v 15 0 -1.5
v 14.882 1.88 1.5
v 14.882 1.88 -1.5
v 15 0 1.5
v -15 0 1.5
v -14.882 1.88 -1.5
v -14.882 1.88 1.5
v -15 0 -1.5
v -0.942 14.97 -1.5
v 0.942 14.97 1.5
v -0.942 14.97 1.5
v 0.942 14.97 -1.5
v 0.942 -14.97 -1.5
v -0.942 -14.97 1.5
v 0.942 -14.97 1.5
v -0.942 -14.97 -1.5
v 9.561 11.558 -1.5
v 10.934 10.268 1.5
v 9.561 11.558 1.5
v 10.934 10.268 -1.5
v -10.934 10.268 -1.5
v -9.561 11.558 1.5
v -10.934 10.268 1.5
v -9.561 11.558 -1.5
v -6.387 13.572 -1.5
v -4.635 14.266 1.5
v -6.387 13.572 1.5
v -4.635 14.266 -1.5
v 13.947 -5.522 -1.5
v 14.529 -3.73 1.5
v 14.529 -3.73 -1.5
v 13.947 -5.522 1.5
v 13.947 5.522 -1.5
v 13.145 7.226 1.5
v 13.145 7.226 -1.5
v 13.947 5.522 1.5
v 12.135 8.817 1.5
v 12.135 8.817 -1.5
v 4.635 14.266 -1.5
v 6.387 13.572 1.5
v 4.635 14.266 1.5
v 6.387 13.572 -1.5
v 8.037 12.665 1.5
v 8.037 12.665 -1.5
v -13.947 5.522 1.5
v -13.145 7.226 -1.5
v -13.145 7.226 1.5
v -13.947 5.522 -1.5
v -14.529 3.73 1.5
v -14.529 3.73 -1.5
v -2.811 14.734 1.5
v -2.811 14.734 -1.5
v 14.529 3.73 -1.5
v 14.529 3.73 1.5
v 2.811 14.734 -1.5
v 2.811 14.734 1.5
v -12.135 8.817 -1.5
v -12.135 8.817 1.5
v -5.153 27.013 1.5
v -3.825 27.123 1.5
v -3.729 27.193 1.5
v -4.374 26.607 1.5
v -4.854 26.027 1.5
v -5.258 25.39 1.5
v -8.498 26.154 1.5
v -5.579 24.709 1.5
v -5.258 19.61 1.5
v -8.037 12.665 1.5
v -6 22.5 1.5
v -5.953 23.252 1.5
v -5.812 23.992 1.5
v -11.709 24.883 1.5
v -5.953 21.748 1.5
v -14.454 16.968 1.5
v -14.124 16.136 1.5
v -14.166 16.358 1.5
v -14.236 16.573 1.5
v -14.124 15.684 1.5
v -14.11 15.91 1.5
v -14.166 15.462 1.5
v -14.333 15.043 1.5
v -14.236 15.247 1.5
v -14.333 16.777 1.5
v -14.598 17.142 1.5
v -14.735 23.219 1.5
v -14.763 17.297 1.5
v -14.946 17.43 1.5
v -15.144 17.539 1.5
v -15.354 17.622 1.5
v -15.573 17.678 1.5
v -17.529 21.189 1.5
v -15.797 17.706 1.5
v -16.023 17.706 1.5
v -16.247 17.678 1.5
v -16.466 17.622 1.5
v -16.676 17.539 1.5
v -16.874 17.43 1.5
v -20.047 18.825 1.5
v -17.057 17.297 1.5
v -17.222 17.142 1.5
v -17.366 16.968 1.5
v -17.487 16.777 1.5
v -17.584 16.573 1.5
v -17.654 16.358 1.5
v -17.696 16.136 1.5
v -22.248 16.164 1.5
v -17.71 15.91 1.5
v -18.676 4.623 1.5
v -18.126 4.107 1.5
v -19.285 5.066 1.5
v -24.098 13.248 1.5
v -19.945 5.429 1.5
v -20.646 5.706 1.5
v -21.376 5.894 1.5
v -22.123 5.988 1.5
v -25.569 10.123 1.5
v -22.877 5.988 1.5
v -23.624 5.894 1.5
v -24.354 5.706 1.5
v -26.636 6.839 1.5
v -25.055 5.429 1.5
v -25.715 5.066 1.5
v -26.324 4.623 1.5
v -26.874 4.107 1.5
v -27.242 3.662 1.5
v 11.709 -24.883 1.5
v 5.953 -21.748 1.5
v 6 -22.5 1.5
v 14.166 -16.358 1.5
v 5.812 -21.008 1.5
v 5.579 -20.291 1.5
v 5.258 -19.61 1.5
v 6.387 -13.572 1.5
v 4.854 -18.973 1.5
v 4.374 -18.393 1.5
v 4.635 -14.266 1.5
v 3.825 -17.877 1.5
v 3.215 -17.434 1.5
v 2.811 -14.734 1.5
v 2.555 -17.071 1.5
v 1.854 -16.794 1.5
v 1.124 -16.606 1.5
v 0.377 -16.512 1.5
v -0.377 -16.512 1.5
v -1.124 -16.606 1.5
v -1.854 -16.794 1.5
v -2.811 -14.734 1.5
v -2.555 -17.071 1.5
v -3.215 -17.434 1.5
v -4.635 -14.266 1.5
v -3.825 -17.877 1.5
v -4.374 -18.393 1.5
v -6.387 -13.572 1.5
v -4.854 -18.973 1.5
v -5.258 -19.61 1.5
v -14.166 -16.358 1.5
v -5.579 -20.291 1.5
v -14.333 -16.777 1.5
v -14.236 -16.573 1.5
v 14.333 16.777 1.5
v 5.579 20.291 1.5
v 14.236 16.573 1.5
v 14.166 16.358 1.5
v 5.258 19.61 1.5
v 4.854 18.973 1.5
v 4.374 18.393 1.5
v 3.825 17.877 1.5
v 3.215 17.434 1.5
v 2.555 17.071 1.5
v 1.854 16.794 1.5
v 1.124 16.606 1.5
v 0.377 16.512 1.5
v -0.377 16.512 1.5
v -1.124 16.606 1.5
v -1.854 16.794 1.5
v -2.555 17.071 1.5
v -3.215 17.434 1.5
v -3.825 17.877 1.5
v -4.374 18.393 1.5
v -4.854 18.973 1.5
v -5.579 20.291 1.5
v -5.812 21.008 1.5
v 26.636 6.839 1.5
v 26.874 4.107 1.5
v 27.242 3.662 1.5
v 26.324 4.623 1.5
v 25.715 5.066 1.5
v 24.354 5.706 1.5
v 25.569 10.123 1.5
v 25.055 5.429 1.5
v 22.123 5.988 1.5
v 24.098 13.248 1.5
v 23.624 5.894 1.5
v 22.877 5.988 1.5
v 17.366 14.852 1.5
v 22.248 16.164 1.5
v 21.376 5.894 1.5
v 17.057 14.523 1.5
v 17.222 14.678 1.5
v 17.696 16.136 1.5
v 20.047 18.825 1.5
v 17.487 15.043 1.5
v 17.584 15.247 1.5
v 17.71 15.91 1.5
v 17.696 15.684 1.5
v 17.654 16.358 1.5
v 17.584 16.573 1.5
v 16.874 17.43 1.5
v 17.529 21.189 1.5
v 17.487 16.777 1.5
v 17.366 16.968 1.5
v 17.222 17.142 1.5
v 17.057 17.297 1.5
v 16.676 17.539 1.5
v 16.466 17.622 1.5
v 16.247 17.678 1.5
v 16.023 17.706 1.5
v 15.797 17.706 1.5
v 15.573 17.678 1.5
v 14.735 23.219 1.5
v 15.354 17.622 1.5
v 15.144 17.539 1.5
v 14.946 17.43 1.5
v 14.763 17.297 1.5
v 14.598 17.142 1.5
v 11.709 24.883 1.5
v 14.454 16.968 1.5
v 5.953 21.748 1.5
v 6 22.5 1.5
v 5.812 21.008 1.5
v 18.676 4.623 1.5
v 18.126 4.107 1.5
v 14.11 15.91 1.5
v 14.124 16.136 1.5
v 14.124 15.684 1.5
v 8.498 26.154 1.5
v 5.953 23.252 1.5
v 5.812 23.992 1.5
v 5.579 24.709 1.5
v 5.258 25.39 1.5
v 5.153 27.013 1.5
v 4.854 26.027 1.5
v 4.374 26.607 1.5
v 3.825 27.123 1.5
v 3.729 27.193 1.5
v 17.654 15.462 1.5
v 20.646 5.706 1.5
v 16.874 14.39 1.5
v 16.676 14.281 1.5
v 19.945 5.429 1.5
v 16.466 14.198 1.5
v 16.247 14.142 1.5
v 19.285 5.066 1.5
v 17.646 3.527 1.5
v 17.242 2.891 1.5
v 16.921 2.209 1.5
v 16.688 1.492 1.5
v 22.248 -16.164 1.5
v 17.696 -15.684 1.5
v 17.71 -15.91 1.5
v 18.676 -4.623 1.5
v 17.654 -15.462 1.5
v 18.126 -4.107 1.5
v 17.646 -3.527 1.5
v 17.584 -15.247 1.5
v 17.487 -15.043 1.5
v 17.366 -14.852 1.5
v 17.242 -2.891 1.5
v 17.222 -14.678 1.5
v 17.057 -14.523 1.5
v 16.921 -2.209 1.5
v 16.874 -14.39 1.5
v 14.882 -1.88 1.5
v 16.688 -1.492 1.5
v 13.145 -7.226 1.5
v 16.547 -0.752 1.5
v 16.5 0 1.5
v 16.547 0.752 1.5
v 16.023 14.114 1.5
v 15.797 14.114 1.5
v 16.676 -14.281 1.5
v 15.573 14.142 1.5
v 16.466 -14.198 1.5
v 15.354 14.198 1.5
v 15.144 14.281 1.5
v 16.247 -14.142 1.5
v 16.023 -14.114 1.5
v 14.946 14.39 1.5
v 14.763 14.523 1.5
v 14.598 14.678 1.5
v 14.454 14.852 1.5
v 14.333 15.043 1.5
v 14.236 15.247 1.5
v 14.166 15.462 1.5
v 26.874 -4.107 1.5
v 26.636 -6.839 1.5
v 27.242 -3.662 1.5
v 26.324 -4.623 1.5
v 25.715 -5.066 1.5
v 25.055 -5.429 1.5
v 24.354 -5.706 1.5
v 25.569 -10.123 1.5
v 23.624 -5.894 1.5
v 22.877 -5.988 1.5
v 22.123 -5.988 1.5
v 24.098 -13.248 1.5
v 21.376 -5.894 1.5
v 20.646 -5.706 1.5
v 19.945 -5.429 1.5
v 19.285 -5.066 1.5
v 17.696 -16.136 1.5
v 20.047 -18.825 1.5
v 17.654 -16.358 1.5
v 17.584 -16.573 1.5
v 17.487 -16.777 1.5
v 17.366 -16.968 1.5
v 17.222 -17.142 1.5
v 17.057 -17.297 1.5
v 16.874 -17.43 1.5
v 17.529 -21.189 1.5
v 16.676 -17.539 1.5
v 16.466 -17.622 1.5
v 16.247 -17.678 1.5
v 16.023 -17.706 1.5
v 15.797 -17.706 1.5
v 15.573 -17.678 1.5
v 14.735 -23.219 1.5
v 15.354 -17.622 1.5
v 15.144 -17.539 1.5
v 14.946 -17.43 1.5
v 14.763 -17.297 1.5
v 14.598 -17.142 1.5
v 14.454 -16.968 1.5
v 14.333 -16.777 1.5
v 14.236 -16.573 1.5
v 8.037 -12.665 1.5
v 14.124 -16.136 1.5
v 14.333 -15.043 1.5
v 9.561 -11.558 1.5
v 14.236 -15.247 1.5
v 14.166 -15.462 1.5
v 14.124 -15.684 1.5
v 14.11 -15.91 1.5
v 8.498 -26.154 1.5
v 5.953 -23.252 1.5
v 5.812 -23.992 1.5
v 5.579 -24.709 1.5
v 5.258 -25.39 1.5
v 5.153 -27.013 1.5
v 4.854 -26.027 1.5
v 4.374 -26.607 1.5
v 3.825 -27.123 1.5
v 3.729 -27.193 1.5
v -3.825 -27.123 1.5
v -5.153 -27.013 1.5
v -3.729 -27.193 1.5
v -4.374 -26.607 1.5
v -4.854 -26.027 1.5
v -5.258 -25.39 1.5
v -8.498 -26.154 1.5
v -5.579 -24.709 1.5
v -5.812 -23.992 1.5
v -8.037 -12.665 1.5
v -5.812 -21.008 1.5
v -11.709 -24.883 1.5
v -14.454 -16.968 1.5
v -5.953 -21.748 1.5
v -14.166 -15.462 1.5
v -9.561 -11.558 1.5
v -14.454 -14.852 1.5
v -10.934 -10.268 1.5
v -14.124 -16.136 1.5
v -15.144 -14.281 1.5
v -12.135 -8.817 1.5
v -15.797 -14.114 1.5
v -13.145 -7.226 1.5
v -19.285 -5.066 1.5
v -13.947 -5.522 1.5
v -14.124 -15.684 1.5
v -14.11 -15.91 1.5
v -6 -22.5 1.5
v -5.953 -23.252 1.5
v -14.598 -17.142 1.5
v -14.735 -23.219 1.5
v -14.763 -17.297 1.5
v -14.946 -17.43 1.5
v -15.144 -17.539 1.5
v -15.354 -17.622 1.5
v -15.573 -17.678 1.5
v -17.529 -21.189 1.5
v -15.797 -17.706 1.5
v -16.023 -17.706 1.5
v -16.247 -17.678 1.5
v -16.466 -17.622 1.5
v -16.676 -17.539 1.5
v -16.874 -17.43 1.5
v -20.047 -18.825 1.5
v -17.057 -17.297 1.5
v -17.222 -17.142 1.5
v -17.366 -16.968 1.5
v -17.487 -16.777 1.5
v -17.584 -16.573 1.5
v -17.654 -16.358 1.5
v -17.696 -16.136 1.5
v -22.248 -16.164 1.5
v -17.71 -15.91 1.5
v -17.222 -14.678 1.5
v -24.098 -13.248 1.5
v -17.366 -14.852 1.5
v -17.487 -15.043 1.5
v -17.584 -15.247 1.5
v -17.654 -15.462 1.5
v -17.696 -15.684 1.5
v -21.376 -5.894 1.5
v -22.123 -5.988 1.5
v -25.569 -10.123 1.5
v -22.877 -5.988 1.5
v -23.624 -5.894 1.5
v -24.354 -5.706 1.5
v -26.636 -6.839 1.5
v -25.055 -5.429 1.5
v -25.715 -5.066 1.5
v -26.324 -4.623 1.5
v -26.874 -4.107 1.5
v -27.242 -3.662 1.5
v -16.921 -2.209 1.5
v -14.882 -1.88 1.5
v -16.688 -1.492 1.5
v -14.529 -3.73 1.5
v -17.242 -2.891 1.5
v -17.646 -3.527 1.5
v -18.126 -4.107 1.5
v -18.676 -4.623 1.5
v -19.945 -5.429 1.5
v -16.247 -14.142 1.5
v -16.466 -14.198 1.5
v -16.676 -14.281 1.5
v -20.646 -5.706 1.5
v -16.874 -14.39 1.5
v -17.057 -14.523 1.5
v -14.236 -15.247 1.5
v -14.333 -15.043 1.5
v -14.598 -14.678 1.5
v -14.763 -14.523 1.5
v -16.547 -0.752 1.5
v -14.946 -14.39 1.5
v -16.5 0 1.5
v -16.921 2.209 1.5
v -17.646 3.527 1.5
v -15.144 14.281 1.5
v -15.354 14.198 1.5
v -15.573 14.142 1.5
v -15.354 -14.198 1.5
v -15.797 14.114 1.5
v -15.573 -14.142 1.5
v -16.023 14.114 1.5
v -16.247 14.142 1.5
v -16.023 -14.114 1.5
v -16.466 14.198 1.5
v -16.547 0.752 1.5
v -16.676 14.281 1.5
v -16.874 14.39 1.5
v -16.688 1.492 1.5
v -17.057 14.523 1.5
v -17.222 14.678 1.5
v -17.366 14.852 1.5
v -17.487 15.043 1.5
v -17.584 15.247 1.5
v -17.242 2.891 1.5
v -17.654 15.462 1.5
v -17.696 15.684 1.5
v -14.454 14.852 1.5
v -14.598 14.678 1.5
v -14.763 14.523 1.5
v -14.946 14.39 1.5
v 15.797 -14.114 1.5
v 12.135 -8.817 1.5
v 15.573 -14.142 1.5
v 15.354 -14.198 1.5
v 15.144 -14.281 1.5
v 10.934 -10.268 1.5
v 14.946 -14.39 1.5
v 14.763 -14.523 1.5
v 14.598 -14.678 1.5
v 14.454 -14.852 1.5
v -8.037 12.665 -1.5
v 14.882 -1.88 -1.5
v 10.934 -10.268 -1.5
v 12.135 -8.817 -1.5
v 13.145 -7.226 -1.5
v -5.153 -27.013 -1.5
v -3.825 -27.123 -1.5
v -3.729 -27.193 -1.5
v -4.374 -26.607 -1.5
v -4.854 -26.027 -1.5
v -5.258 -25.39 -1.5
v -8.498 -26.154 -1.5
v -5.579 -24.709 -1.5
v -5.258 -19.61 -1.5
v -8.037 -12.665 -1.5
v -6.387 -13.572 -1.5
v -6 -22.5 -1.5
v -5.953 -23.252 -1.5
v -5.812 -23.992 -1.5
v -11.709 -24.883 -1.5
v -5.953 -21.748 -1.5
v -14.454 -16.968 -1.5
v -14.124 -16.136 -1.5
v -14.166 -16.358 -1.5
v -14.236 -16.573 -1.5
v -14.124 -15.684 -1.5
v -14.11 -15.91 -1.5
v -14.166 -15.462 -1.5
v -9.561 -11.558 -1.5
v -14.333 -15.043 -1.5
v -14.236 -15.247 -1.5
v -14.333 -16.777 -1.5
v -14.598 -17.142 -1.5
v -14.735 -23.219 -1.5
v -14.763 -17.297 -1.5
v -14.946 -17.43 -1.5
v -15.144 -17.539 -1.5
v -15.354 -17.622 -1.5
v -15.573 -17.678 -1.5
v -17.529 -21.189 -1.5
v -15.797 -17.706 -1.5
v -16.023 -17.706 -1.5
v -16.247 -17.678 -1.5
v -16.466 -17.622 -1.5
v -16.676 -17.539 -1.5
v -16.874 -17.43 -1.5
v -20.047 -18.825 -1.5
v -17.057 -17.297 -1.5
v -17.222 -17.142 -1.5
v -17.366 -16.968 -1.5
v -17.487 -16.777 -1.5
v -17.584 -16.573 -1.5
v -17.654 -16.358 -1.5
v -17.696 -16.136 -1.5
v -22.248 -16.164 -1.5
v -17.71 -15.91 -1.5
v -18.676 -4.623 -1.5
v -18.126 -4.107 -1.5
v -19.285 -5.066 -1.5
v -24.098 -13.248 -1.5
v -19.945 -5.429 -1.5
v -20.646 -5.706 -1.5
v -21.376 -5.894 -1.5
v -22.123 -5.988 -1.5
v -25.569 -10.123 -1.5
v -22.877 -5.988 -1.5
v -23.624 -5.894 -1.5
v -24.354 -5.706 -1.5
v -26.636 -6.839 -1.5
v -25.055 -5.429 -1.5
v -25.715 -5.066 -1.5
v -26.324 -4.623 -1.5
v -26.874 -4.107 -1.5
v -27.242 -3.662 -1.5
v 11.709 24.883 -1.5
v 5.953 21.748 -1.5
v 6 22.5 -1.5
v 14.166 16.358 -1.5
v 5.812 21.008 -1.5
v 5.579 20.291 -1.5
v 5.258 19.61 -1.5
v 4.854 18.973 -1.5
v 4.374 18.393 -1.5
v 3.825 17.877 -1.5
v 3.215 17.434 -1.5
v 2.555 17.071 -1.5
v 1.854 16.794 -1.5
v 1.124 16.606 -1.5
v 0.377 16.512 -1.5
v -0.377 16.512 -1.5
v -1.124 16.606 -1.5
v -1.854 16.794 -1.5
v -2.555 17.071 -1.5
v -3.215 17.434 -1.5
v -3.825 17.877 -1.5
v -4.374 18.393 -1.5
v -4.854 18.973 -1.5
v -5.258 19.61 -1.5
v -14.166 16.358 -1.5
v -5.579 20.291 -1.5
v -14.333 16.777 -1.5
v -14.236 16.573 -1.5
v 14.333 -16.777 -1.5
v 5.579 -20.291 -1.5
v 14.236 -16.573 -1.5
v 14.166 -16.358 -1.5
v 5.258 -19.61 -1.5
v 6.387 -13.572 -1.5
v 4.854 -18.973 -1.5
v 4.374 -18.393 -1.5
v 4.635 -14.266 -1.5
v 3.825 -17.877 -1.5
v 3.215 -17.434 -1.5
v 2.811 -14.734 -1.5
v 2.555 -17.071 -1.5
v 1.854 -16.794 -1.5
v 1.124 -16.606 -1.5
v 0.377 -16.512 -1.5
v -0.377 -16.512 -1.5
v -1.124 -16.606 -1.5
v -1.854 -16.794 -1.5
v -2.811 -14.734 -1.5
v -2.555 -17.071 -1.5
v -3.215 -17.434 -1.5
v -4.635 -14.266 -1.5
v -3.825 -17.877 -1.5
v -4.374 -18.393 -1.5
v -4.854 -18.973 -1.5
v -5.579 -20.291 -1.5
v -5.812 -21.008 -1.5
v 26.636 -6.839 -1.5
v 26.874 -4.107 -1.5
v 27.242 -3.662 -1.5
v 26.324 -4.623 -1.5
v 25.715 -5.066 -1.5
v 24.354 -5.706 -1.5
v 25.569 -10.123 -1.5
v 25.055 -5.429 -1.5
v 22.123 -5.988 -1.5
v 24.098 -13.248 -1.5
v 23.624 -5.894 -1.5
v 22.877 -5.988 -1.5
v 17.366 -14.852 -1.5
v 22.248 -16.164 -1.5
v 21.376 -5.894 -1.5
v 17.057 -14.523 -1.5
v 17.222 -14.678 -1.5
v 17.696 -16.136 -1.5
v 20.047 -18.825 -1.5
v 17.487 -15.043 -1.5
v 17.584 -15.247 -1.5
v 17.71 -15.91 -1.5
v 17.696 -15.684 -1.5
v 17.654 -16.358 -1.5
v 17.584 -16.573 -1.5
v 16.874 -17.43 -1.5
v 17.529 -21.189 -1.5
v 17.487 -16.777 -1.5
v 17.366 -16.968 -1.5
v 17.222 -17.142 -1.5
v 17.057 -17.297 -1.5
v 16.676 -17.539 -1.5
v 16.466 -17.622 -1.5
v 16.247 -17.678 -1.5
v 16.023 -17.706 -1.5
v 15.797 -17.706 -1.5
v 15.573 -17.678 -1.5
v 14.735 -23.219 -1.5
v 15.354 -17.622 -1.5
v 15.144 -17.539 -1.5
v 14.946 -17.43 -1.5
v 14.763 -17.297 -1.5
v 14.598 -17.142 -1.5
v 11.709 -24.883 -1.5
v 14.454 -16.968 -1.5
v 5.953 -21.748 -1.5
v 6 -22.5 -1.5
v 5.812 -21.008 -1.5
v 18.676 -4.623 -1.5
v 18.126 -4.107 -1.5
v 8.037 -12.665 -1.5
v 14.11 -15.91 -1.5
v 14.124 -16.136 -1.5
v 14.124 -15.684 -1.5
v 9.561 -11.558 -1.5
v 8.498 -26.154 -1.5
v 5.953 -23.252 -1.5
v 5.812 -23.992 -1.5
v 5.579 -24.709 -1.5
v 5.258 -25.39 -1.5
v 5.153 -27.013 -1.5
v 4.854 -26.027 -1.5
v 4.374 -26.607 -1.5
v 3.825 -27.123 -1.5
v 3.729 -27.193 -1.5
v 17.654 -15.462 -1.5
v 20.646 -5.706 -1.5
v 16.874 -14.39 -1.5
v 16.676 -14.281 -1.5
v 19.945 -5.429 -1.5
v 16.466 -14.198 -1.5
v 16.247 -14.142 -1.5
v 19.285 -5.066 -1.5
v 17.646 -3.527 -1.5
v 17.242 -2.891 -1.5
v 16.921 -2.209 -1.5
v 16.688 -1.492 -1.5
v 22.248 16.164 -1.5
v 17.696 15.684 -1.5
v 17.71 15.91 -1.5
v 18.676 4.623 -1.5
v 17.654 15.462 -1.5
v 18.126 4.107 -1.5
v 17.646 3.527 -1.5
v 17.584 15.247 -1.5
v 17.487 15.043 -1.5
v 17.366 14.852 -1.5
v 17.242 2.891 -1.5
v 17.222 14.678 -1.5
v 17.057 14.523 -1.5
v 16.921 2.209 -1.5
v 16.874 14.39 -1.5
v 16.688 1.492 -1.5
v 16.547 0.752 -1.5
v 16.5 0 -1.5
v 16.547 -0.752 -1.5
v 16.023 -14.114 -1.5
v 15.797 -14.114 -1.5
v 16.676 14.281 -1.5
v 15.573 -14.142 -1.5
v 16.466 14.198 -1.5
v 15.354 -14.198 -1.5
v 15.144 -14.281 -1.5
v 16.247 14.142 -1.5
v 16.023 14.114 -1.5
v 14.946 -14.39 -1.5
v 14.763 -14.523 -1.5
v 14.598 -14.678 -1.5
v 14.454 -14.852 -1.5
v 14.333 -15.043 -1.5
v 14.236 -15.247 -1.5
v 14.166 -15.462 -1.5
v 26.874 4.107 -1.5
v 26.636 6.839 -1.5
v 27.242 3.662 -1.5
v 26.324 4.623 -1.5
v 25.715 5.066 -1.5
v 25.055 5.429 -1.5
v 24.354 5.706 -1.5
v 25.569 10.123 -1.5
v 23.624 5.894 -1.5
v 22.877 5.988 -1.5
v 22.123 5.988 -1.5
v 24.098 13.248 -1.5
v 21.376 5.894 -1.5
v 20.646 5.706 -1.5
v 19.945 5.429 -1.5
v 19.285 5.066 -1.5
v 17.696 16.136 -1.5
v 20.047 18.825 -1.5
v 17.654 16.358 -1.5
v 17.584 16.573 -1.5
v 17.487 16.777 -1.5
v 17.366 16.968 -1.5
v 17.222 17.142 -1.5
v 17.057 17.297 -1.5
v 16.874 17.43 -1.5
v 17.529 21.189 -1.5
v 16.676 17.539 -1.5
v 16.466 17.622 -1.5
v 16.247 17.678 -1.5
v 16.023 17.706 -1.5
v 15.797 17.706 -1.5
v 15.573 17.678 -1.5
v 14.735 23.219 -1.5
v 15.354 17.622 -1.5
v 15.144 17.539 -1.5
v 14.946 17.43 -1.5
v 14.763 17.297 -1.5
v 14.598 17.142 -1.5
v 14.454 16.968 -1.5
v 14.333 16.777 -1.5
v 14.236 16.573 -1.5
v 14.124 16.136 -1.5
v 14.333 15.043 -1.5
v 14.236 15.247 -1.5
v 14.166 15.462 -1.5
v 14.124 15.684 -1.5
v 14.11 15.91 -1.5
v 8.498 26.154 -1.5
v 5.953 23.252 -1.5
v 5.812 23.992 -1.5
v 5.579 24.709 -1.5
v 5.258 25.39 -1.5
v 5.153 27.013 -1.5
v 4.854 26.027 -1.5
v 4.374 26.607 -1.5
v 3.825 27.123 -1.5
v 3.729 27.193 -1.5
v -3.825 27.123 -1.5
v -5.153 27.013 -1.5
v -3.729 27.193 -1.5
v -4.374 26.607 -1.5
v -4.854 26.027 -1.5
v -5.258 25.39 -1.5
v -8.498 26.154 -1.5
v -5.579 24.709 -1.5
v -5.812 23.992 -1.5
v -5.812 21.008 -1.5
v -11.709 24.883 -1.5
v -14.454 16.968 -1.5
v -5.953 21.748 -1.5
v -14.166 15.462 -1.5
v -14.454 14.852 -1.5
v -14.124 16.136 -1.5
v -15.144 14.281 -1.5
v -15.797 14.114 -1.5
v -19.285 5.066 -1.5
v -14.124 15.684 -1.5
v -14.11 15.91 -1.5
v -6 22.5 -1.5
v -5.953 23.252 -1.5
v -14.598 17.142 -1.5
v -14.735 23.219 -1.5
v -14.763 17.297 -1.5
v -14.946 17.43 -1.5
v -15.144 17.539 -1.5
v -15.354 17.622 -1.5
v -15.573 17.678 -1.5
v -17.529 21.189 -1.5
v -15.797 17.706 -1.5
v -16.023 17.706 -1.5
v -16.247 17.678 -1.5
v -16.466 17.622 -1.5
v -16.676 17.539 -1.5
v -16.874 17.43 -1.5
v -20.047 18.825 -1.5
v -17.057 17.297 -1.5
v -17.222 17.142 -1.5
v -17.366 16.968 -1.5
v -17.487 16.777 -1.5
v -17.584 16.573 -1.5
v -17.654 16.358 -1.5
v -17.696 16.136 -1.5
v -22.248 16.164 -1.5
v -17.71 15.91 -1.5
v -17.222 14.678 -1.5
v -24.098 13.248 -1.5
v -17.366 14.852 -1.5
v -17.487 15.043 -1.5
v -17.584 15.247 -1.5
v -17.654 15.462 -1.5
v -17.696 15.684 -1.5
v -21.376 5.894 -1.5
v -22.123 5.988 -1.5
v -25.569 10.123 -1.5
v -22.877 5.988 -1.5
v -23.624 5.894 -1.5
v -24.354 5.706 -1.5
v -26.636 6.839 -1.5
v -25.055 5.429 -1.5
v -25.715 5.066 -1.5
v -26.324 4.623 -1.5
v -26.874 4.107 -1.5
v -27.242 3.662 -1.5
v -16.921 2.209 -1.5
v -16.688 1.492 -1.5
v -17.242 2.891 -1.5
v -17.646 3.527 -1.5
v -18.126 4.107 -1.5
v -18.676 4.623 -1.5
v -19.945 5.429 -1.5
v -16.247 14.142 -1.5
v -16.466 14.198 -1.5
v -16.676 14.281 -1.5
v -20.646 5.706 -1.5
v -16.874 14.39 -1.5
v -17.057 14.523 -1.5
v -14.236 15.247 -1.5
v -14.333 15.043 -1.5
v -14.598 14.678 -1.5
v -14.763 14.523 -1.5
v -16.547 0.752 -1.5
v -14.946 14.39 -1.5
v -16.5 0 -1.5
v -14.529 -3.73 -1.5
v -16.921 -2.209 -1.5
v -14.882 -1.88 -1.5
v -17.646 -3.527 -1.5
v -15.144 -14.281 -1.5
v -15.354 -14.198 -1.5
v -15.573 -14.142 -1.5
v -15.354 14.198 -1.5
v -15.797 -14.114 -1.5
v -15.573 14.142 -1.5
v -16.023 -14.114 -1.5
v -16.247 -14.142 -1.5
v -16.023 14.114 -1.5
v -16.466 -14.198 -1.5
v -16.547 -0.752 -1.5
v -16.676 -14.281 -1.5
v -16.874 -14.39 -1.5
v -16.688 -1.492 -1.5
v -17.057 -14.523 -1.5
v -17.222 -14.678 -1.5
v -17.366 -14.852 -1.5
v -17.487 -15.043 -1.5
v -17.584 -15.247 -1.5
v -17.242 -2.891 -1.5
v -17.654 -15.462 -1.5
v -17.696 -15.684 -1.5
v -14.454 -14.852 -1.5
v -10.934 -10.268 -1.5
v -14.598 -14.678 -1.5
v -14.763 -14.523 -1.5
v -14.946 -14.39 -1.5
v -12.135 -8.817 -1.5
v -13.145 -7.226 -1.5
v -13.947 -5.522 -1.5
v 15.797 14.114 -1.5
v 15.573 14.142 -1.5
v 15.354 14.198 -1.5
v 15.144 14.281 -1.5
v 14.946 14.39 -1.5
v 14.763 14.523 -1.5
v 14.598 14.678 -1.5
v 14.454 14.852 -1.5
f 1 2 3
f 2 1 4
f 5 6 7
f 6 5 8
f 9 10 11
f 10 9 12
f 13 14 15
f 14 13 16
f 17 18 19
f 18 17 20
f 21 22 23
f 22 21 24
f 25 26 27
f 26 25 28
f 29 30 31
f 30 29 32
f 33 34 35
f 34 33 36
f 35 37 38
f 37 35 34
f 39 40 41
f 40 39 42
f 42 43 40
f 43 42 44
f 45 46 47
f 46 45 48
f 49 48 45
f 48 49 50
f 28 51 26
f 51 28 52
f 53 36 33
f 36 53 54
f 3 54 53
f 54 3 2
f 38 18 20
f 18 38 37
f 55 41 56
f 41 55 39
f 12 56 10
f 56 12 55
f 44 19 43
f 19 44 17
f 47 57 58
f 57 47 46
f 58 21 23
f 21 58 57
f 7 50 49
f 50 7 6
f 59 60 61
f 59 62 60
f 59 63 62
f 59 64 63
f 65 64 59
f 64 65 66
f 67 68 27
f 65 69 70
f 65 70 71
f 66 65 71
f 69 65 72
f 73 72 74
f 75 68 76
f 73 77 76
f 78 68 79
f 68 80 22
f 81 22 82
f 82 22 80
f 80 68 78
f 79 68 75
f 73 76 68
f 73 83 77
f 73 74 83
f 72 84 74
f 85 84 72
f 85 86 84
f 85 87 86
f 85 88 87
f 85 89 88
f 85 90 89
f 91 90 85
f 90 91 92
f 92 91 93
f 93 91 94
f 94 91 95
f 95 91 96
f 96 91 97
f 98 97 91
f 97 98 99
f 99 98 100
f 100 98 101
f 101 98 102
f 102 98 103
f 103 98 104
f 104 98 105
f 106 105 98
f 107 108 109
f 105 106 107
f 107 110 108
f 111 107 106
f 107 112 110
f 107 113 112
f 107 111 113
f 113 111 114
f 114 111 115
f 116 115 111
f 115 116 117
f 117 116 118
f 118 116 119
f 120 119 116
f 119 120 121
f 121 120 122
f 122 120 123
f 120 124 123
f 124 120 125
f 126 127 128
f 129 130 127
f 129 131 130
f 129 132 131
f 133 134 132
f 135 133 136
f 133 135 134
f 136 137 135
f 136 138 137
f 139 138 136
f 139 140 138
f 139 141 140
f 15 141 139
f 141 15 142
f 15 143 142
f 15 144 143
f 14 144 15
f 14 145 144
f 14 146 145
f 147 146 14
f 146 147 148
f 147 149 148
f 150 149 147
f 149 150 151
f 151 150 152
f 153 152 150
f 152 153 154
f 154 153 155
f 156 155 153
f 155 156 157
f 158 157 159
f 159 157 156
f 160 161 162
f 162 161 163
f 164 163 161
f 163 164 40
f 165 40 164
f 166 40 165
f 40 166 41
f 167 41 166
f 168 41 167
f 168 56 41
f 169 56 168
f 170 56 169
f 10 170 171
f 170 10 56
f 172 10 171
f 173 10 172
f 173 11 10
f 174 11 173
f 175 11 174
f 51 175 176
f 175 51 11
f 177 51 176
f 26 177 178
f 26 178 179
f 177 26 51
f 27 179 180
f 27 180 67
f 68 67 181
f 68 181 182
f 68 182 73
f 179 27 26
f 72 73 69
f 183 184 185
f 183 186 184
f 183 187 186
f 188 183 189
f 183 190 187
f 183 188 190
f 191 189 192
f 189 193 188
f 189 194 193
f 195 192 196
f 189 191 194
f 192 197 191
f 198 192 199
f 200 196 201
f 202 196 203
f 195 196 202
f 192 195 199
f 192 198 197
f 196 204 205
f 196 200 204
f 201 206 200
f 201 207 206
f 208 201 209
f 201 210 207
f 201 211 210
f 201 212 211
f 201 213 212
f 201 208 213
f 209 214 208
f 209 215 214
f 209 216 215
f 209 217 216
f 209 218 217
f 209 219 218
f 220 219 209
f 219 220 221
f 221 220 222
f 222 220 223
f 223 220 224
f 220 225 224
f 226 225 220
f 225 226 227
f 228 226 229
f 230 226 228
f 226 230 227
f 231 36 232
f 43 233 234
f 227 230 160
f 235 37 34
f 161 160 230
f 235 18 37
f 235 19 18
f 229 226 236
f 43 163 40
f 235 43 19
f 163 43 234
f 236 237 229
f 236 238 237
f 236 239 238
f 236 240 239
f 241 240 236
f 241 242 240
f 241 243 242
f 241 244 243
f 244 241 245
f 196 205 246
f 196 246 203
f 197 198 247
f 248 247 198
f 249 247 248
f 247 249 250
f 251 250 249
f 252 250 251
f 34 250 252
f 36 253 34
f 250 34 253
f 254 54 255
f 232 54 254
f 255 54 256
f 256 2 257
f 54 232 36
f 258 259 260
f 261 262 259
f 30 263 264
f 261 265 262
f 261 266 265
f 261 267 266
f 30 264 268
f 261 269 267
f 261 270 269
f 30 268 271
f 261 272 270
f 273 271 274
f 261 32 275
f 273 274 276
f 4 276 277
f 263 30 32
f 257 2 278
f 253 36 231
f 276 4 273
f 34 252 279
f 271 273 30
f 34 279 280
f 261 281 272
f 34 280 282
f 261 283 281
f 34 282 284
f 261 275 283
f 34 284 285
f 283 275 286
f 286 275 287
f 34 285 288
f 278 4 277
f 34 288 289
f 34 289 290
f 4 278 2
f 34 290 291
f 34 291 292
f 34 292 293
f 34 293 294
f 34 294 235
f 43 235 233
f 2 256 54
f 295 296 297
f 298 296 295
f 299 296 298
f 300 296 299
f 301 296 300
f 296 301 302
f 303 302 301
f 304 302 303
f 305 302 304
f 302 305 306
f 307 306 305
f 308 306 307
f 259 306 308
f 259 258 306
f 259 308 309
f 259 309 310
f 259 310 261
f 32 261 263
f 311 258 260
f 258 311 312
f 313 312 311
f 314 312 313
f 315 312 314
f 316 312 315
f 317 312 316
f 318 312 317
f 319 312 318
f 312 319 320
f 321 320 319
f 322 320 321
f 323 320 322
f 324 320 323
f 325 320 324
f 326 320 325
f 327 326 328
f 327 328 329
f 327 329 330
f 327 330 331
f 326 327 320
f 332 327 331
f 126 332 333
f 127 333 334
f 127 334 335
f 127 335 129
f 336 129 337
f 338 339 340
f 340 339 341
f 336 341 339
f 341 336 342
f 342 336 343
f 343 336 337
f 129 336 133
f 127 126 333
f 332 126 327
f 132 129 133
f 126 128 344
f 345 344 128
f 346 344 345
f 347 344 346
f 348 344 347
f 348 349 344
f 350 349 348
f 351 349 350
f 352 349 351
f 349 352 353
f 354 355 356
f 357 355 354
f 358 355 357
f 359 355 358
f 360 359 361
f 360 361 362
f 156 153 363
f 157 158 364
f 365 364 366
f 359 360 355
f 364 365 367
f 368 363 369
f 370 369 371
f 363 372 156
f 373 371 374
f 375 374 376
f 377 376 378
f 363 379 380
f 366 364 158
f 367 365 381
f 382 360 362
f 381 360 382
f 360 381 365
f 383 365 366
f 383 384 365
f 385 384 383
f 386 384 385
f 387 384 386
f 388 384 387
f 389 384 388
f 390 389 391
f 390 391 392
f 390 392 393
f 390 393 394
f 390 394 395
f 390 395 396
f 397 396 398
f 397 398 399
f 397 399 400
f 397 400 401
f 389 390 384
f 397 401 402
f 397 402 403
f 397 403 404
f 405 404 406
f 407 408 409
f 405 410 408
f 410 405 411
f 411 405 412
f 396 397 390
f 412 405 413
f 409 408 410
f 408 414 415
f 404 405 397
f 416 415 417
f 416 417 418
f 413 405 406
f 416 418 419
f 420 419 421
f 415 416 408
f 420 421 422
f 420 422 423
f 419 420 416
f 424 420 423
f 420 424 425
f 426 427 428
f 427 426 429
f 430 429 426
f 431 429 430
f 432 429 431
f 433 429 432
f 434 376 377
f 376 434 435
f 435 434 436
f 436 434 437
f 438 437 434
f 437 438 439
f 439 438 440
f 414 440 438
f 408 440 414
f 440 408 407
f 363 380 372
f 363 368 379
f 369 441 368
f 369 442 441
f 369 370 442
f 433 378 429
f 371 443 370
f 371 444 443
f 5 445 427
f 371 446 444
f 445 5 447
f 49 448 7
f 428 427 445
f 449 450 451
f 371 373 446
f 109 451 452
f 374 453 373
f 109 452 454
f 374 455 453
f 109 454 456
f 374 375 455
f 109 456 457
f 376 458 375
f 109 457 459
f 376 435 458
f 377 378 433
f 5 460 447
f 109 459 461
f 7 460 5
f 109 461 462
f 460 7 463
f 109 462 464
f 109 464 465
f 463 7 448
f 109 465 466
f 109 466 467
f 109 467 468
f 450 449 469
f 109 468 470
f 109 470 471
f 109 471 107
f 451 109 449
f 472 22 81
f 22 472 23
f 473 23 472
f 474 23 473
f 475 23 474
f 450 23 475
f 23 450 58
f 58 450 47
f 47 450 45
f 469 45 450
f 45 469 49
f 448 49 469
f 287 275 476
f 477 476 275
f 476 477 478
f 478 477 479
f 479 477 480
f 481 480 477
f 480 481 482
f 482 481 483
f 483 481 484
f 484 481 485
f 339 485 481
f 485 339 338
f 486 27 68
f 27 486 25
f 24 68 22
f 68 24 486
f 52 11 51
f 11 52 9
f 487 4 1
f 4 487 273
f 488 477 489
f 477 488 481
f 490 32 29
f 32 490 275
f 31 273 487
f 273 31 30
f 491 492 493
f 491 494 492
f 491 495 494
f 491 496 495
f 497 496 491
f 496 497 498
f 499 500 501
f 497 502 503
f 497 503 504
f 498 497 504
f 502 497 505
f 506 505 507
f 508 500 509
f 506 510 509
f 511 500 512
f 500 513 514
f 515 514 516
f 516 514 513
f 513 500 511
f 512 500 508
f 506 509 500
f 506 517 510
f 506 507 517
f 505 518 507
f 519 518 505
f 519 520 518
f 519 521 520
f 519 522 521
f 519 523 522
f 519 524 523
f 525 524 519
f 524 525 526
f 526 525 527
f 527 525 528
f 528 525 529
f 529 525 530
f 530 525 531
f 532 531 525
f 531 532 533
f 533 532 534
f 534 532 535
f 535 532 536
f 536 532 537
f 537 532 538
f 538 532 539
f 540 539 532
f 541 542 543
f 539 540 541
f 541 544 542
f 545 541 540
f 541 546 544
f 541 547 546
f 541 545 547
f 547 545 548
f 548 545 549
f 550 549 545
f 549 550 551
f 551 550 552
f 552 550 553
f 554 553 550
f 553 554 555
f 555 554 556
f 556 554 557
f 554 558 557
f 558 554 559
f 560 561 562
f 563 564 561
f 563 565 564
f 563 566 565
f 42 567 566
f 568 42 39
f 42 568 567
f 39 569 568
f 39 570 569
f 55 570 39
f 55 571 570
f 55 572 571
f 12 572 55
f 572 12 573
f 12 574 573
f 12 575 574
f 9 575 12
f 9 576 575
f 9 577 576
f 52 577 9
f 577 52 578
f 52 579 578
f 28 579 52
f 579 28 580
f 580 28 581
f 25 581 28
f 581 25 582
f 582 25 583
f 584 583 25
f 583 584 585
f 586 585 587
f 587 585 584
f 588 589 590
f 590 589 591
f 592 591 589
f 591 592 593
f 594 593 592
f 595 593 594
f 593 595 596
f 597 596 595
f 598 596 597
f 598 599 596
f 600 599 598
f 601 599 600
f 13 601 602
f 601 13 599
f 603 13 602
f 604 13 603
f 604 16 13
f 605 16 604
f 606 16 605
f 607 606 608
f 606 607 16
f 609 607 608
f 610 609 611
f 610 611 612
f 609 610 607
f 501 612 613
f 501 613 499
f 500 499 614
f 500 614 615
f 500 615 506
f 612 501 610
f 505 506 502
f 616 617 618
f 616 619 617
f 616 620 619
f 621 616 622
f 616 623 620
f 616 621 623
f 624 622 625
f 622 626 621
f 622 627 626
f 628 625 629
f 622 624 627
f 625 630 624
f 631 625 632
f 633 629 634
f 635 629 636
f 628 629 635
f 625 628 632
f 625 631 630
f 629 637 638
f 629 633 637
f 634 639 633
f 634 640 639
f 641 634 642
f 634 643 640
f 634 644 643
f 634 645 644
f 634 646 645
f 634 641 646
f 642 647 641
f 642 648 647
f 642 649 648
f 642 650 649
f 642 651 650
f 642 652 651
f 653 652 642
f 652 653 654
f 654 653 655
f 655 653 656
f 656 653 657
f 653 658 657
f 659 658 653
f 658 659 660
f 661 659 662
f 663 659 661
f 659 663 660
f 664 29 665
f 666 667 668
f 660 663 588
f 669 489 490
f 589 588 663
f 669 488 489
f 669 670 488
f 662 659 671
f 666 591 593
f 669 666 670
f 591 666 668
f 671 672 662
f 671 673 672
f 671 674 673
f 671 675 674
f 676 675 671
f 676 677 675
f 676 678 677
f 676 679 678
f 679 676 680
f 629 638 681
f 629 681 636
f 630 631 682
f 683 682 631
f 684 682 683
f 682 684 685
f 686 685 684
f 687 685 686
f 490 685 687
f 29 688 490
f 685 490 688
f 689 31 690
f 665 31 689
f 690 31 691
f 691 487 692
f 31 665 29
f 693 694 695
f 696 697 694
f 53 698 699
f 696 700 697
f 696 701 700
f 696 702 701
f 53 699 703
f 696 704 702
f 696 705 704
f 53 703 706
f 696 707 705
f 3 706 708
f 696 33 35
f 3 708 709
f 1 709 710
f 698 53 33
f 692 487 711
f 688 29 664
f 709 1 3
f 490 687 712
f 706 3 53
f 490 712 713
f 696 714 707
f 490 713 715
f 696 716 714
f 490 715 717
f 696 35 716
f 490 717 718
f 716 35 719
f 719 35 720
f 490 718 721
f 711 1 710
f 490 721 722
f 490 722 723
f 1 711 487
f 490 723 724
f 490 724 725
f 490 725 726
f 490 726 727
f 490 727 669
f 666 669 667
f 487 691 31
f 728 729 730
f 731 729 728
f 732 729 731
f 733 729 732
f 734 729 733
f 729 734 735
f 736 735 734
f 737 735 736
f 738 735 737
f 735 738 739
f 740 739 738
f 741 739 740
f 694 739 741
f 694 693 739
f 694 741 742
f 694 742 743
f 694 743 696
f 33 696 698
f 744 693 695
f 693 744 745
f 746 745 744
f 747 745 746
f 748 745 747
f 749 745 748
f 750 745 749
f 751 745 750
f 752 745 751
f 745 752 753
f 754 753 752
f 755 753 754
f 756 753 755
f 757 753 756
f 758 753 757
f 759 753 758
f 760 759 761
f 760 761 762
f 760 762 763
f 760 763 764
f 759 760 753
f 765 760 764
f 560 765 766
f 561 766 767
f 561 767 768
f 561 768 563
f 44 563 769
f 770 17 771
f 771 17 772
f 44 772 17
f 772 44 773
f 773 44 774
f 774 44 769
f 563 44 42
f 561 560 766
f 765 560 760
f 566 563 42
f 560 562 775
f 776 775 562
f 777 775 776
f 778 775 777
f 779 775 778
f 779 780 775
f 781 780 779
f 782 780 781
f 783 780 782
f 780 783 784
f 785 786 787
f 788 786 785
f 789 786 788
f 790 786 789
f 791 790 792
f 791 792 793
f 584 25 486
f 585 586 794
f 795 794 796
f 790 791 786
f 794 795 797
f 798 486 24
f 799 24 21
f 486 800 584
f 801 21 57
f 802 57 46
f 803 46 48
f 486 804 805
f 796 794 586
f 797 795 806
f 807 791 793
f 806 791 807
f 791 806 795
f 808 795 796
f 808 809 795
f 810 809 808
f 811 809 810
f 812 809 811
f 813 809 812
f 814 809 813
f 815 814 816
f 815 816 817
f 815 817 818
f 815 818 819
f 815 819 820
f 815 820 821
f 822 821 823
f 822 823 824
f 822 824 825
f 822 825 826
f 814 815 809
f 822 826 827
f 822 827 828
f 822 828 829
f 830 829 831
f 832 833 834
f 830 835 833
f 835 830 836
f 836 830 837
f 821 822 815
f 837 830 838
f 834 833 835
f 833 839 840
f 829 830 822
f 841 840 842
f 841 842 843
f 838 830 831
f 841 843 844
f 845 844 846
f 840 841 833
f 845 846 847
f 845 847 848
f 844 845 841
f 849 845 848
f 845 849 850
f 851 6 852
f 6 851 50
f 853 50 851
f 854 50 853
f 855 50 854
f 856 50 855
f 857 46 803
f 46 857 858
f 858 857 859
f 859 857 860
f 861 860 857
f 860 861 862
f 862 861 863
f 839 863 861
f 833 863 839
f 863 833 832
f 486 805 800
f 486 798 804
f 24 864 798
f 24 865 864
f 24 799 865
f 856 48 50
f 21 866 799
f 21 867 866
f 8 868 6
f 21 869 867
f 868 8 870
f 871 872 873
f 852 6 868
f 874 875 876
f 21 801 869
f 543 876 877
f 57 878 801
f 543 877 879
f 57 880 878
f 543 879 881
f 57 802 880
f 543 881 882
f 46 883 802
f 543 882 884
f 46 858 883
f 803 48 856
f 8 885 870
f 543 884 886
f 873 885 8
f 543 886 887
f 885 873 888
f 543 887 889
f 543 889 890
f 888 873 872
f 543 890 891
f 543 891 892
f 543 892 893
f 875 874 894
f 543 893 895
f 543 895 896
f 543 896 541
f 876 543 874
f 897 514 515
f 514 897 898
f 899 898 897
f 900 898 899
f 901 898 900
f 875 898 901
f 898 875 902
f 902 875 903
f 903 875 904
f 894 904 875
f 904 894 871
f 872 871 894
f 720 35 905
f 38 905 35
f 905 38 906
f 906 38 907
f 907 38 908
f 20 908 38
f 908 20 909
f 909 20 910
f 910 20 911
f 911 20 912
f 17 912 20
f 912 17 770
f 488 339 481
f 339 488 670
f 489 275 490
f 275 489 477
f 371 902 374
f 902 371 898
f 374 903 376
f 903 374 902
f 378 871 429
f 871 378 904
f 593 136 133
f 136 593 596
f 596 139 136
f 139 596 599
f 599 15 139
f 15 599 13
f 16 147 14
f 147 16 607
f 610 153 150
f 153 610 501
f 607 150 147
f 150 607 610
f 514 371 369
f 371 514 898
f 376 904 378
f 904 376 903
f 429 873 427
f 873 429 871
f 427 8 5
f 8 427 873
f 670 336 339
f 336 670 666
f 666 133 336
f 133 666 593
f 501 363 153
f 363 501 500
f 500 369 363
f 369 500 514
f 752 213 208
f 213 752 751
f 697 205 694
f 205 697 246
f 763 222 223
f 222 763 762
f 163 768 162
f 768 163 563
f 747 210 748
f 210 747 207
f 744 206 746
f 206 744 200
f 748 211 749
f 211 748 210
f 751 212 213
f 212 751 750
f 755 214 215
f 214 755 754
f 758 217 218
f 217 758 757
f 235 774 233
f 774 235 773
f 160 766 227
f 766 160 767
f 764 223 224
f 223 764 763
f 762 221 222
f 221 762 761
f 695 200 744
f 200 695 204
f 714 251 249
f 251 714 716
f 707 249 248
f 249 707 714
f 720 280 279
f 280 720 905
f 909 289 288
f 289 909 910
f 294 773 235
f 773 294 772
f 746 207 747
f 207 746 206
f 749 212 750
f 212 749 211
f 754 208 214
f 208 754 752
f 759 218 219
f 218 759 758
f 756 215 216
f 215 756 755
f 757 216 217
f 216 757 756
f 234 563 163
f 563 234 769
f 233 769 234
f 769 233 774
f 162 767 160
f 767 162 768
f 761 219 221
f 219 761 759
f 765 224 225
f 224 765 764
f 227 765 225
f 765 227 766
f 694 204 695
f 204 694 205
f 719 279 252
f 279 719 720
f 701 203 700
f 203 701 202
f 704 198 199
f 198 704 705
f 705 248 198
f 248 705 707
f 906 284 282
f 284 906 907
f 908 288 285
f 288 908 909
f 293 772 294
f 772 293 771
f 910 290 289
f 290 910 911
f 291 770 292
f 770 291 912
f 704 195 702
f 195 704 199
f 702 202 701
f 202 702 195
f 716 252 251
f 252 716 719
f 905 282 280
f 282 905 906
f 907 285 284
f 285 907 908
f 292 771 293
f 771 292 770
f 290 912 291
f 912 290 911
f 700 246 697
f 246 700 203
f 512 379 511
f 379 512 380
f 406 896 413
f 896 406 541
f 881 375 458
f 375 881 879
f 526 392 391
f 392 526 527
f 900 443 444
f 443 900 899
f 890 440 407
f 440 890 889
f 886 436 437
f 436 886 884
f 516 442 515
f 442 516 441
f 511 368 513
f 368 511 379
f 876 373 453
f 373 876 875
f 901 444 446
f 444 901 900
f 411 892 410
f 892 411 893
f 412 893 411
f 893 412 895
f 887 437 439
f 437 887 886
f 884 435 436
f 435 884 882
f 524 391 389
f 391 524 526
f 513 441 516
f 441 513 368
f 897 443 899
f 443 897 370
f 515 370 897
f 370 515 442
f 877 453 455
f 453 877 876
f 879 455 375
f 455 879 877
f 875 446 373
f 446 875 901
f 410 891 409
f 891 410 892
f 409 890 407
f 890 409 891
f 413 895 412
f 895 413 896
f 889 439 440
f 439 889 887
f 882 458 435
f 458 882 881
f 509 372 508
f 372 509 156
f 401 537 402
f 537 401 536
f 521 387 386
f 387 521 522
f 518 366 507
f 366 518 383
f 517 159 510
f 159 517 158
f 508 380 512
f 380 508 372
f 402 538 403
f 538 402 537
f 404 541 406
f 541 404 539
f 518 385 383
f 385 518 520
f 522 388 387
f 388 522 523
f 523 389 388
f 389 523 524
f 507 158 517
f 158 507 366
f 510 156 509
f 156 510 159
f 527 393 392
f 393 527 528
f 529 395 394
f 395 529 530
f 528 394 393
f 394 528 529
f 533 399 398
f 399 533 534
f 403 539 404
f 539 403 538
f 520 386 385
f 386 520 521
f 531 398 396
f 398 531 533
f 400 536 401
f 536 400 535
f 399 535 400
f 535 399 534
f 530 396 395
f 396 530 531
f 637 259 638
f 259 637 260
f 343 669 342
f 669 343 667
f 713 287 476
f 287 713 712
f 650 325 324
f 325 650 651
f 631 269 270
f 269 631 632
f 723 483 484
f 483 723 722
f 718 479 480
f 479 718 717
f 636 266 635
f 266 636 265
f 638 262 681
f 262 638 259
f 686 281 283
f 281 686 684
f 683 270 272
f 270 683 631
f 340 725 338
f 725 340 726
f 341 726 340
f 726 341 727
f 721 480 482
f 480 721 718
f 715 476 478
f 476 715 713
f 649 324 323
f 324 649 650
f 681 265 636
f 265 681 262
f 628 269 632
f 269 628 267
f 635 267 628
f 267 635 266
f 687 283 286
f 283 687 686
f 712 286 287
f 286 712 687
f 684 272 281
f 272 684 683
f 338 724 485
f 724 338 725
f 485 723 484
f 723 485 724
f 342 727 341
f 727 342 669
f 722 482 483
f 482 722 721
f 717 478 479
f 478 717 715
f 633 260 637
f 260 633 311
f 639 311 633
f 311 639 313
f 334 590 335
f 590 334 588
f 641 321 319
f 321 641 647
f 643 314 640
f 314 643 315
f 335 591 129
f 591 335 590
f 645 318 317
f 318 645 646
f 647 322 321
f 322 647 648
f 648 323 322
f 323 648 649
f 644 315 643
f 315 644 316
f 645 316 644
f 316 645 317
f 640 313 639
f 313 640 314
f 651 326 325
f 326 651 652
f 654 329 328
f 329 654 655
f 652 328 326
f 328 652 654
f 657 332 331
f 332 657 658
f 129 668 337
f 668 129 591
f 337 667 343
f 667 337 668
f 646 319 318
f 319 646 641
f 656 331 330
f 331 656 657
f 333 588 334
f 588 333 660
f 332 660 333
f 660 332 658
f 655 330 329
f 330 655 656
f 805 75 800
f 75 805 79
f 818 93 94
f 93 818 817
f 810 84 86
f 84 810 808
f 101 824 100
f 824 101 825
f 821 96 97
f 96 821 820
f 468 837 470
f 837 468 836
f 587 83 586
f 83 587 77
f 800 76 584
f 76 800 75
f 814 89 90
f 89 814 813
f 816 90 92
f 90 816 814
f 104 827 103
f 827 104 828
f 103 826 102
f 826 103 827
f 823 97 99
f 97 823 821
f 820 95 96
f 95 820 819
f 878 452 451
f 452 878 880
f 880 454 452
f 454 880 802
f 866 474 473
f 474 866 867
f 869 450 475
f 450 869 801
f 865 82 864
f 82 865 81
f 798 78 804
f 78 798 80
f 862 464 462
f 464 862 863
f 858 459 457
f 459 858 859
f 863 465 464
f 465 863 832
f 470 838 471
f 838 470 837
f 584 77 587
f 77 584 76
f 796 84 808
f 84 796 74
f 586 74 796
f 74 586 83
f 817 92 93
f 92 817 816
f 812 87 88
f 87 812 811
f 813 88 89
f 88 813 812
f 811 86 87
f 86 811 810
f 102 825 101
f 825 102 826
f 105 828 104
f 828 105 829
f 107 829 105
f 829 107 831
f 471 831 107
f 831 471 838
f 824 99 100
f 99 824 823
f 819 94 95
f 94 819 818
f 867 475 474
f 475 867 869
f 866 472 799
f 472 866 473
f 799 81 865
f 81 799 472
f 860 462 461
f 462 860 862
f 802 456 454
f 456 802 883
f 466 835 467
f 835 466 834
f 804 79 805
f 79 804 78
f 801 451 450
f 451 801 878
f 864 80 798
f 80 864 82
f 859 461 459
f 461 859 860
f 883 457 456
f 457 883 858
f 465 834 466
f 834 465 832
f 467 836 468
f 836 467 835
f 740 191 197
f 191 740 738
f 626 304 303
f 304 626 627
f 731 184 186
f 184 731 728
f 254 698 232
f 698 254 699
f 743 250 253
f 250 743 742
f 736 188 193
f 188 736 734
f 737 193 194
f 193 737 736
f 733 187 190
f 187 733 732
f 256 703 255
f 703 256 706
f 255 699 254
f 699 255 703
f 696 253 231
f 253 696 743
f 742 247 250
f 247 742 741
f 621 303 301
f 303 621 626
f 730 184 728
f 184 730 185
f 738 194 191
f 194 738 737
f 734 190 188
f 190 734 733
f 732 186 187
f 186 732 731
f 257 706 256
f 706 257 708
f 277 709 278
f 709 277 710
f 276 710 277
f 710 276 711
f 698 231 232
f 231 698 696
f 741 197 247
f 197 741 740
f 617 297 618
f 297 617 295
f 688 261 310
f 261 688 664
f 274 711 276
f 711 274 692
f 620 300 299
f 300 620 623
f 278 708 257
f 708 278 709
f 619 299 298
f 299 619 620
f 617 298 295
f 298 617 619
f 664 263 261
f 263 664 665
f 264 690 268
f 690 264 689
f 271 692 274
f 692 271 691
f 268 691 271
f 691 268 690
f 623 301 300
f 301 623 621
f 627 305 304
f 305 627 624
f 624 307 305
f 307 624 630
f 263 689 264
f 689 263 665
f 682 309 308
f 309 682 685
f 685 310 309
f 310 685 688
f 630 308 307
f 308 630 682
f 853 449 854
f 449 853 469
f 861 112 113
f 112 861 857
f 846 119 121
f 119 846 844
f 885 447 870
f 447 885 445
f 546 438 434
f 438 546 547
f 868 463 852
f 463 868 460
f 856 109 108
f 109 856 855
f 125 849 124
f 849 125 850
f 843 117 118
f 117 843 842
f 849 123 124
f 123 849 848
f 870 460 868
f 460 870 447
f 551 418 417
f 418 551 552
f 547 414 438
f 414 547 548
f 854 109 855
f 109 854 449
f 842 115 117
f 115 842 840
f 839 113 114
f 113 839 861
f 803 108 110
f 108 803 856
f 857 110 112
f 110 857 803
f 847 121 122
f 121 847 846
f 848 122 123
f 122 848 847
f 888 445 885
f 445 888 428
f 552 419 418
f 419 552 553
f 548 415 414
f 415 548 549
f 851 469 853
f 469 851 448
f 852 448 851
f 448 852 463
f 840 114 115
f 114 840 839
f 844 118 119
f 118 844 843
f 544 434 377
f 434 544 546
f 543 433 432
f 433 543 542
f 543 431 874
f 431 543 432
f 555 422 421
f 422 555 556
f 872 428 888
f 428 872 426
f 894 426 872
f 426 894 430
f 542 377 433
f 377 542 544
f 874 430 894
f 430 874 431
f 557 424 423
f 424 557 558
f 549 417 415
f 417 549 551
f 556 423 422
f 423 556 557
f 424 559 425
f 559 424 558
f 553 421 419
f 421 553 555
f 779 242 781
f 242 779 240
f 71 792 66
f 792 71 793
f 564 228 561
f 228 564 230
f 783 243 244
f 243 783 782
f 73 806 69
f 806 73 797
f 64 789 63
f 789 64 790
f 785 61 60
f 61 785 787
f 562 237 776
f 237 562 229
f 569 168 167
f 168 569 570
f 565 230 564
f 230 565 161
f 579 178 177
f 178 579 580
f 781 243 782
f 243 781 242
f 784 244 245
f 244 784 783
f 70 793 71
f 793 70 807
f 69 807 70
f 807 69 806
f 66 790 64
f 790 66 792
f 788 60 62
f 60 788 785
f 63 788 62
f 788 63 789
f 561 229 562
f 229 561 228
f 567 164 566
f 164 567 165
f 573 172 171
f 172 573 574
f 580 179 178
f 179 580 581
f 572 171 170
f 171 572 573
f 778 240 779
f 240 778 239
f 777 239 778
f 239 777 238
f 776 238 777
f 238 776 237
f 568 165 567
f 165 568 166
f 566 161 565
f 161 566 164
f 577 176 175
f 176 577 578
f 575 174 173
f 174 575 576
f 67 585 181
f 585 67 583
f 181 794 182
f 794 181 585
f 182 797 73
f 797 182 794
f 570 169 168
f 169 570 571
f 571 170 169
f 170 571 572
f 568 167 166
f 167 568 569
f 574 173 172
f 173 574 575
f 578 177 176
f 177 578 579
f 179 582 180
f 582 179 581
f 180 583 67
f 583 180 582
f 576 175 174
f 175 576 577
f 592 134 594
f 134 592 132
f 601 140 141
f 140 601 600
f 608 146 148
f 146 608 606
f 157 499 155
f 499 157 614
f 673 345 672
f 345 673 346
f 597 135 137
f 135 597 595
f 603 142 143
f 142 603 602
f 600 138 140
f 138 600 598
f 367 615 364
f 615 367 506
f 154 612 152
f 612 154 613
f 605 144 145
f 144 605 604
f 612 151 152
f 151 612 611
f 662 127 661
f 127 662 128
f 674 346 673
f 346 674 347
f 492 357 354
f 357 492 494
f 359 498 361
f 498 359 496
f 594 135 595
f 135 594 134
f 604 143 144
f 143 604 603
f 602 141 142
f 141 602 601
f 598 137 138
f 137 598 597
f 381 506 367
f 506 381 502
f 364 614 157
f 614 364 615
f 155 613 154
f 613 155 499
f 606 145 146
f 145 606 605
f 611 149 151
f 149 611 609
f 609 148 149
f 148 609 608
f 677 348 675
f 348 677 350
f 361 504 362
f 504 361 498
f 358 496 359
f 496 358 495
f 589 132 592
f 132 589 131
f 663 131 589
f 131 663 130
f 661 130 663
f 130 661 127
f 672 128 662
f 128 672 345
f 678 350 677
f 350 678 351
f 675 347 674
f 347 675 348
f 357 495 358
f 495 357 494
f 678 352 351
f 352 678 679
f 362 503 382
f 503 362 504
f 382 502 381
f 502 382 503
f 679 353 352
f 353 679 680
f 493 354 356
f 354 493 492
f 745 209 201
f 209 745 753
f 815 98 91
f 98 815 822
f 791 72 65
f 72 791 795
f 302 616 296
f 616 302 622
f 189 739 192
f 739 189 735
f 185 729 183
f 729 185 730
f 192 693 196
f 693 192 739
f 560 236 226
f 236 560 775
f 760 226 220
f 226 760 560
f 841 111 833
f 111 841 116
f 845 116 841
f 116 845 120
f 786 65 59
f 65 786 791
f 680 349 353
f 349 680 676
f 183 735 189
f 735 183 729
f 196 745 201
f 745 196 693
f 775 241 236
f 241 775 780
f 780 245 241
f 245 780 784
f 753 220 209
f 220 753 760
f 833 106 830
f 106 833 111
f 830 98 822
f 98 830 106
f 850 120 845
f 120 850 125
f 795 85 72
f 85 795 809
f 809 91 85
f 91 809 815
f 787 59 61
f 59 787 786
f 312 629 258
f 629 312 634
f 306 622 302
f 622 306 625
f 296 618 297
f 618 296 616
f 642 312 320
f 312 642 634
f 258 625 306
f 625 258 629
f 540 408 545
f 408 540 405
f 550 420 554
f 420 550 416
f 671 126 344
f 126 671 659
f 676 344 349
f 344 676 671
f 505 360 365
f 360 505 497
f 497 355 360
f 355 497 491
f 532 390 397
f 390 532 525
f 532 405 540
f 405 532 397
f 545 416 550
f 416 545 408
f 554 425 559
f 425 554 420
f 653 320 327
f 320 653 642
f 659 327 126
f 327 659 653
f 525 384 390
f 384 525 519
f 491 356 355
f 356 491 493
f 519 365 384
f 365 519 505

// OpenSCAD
$fn = 50;


difference() {
	union() {
		translate(v = [0, 0, -1.5000000000]) {
			cylinder(h = 3, r = 27.5000000000);
		}
	}
	union() {
		translate(v = [0, 0, -1.5000000000]) {
			cylinder(h = 3, r = 15.0000000000);
		}
		translate(v = [15.9100000000, 15.9100000000, -47.0000000000]) {
			cylinder(h = 100, r = 1.8000000000);
		}
		translate(v = [-15.9100000000, -15.9100000000, -47.0000000000]) {
			cylinder(h = 100, r = 1.8000000000);
		}
		translate(v = [15.9100000000, -15.9100000000, -47.0000000000]) {
			cylinder(h = 100, r = 1.8000000000);
		}
		translate(v = [-15.9100000000, 15.9100000000, -47.0000000000]) {
			cylinder(h = 100, r = 1.8000000000);
		}
		translate(v = [22.5000000000, 0, -47.0000000000]) {
			cylinder(h = 100, r = 6.0000000000);
		}
		translate(v = [-22.5000000000, 0, -47.0000000000]) {
			cylinder(h = 100, r = 6.0000000000);
		}
		translate(v = [0, 22.5000000000, -47.0000000000]) {
			cylinder(h = 100, r = 6.0000000000);
		}
		translate(v = [0, -22.5000000000, -47.0000000000]) {
			cylinder(h = 100, r = 6.0000000000);
		}
	}
}
